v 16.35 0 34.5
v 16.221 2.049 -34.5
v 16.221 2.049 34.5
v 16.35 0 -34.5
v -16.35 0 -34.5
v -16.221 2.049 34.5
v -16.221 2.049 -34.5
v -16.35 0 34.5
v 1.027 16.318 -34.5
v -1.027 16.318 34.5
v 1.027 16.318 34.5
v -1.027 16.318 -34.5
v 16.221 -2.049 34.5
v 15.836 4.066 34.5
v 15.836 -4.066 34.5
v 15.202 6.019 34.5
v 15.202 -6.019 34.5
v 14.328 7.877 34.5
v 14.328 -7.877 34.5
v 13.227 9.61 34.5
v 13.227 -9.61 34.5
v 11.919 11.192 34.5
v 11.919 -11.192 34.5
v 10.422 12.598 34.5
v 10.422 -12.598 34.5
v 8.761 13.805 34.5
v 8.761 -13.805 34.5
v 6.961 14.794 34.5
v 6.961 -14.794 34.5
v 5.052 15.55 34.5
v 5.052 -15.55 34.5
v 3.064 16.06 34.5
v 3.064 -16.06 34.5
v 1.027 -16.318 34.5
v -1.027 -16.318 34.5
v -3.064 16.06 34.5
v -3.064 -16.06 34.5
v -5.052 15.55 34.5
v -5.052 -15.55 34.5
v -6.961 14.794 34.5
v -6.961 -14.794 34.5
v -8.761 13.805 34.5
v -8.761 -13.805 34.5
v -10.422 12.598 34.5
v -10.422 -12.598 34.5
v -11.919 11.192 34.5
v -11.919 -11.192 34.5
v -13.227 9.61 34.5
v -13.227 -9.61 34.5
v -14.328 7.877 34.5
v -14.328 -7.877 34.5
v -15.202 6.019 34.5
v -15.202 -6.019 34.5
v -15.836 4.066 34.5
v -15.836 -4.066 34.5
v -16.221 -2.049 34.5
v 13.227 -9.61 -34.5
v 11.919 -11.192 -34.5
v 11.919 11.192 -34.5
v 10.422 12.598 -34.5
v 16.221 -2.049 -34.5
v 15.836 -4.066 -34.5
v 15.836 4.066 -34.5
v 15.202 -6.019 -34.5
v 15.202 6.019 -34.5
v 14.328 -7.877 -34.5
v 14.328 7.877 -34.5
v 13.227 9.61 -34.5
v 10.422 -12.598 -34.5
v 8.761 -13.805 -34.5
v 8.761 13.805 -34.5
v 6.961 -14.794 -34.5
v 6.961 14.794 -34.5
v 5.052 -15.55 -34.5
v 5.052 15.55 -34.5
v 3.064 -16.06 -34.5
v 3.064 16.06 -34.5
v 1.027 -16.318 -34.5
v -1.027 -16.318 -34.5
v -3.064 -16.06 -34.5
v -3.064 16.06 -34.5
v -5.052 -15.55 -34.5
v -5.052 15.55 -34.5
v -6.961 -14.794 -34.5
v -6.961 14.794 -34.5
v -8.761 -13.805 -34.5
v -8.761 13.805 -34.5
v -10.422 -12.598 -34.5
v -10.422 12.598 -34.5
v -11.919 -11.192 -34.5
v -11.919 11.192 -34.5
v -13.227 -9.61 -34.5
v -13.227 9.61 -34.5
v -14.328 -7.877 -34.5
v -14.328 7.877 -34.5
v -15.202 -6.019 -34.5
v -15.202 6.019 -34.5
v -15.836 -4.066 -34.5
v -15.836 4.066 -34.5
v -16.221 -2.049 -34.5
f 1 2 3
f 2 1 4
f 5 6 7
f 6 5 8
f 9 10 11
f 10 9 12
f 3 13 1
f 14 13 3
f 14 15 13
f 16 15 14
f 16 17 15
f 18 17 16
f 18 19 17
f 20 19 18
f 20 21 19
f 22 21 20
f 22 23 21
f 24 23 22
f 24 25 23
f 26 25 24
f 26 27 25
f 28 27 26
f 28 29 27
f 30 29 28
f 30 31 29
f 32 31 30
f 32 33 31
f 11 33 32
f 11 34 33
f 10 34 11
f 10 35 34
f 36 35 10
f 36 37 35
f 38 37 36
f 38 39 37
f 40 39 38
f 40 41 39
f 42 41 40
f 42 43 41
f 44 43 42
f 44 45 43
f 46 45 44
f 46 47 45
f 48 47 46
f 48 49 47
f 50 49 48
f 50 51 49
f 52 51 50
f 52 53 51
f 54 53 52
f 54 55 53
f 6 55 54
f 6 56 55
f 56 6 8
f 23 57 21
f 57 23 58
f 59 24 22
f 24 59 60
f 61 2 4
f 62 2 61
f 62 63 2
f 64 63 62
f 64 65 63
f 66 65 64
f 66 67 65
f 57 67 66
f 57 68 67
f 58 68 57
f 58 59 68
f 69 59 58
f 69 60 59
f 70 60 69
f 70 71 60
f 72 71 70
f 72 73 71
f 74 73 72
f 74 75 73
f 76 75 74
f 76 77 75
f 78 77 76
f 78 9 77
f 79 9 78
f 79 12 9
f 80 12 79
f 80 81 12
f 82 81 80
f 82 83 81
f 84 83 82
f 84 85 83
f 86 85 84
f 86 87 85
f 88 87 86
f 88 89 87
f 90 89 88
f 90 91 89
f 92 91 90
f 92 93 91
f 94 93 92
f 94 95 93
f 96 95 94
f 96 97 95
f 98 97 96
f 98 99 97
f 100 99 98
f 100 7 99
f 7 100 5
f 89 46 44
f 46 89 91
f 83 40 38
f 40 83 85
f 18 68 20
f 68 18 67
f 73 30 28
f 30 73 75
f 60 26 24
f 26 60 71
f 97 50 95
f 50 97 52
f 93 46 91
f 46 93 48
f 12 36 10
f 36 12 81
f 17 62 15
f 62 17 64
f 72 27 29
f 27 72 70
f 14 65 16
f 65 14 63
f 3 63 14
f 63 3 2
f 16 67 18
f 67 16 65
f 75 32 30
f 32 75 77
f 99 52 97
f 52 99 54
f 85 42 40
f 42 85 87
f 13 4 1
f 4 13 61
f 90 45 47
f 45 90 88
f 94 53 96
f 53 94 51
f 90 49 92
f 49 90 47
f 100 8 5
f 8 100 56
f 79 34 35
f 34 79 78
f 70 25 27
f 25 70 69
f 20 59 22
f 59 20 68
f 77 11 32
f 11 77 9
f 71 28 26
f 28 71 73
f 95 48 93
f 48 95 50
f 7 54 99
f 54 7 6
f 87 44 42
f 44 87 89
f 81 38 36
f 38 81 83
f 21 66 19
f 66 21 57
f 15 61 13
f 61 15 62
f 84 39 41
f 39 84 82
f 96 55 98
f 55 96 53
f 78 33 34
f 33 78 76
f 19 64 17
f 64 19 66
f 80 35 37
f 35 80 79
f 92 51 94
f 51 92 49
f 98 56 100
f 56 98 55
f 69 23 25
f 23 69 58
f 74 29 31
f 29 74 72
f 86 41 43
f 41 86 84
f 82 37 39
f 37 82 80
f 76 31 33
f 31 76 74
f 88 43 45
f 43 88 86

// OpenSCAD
$fn = 50;


difference() {
	union() {
		translate(v = [0, 0, -34.5000000000]) {
			cylinder(h = 69, r = 16.3500000000);
		}
	}
	union() {
		translate(v = [0, 0, -100.0000000000]) {
			cylinder(h = 200, r = 0);
		}
	}
}
